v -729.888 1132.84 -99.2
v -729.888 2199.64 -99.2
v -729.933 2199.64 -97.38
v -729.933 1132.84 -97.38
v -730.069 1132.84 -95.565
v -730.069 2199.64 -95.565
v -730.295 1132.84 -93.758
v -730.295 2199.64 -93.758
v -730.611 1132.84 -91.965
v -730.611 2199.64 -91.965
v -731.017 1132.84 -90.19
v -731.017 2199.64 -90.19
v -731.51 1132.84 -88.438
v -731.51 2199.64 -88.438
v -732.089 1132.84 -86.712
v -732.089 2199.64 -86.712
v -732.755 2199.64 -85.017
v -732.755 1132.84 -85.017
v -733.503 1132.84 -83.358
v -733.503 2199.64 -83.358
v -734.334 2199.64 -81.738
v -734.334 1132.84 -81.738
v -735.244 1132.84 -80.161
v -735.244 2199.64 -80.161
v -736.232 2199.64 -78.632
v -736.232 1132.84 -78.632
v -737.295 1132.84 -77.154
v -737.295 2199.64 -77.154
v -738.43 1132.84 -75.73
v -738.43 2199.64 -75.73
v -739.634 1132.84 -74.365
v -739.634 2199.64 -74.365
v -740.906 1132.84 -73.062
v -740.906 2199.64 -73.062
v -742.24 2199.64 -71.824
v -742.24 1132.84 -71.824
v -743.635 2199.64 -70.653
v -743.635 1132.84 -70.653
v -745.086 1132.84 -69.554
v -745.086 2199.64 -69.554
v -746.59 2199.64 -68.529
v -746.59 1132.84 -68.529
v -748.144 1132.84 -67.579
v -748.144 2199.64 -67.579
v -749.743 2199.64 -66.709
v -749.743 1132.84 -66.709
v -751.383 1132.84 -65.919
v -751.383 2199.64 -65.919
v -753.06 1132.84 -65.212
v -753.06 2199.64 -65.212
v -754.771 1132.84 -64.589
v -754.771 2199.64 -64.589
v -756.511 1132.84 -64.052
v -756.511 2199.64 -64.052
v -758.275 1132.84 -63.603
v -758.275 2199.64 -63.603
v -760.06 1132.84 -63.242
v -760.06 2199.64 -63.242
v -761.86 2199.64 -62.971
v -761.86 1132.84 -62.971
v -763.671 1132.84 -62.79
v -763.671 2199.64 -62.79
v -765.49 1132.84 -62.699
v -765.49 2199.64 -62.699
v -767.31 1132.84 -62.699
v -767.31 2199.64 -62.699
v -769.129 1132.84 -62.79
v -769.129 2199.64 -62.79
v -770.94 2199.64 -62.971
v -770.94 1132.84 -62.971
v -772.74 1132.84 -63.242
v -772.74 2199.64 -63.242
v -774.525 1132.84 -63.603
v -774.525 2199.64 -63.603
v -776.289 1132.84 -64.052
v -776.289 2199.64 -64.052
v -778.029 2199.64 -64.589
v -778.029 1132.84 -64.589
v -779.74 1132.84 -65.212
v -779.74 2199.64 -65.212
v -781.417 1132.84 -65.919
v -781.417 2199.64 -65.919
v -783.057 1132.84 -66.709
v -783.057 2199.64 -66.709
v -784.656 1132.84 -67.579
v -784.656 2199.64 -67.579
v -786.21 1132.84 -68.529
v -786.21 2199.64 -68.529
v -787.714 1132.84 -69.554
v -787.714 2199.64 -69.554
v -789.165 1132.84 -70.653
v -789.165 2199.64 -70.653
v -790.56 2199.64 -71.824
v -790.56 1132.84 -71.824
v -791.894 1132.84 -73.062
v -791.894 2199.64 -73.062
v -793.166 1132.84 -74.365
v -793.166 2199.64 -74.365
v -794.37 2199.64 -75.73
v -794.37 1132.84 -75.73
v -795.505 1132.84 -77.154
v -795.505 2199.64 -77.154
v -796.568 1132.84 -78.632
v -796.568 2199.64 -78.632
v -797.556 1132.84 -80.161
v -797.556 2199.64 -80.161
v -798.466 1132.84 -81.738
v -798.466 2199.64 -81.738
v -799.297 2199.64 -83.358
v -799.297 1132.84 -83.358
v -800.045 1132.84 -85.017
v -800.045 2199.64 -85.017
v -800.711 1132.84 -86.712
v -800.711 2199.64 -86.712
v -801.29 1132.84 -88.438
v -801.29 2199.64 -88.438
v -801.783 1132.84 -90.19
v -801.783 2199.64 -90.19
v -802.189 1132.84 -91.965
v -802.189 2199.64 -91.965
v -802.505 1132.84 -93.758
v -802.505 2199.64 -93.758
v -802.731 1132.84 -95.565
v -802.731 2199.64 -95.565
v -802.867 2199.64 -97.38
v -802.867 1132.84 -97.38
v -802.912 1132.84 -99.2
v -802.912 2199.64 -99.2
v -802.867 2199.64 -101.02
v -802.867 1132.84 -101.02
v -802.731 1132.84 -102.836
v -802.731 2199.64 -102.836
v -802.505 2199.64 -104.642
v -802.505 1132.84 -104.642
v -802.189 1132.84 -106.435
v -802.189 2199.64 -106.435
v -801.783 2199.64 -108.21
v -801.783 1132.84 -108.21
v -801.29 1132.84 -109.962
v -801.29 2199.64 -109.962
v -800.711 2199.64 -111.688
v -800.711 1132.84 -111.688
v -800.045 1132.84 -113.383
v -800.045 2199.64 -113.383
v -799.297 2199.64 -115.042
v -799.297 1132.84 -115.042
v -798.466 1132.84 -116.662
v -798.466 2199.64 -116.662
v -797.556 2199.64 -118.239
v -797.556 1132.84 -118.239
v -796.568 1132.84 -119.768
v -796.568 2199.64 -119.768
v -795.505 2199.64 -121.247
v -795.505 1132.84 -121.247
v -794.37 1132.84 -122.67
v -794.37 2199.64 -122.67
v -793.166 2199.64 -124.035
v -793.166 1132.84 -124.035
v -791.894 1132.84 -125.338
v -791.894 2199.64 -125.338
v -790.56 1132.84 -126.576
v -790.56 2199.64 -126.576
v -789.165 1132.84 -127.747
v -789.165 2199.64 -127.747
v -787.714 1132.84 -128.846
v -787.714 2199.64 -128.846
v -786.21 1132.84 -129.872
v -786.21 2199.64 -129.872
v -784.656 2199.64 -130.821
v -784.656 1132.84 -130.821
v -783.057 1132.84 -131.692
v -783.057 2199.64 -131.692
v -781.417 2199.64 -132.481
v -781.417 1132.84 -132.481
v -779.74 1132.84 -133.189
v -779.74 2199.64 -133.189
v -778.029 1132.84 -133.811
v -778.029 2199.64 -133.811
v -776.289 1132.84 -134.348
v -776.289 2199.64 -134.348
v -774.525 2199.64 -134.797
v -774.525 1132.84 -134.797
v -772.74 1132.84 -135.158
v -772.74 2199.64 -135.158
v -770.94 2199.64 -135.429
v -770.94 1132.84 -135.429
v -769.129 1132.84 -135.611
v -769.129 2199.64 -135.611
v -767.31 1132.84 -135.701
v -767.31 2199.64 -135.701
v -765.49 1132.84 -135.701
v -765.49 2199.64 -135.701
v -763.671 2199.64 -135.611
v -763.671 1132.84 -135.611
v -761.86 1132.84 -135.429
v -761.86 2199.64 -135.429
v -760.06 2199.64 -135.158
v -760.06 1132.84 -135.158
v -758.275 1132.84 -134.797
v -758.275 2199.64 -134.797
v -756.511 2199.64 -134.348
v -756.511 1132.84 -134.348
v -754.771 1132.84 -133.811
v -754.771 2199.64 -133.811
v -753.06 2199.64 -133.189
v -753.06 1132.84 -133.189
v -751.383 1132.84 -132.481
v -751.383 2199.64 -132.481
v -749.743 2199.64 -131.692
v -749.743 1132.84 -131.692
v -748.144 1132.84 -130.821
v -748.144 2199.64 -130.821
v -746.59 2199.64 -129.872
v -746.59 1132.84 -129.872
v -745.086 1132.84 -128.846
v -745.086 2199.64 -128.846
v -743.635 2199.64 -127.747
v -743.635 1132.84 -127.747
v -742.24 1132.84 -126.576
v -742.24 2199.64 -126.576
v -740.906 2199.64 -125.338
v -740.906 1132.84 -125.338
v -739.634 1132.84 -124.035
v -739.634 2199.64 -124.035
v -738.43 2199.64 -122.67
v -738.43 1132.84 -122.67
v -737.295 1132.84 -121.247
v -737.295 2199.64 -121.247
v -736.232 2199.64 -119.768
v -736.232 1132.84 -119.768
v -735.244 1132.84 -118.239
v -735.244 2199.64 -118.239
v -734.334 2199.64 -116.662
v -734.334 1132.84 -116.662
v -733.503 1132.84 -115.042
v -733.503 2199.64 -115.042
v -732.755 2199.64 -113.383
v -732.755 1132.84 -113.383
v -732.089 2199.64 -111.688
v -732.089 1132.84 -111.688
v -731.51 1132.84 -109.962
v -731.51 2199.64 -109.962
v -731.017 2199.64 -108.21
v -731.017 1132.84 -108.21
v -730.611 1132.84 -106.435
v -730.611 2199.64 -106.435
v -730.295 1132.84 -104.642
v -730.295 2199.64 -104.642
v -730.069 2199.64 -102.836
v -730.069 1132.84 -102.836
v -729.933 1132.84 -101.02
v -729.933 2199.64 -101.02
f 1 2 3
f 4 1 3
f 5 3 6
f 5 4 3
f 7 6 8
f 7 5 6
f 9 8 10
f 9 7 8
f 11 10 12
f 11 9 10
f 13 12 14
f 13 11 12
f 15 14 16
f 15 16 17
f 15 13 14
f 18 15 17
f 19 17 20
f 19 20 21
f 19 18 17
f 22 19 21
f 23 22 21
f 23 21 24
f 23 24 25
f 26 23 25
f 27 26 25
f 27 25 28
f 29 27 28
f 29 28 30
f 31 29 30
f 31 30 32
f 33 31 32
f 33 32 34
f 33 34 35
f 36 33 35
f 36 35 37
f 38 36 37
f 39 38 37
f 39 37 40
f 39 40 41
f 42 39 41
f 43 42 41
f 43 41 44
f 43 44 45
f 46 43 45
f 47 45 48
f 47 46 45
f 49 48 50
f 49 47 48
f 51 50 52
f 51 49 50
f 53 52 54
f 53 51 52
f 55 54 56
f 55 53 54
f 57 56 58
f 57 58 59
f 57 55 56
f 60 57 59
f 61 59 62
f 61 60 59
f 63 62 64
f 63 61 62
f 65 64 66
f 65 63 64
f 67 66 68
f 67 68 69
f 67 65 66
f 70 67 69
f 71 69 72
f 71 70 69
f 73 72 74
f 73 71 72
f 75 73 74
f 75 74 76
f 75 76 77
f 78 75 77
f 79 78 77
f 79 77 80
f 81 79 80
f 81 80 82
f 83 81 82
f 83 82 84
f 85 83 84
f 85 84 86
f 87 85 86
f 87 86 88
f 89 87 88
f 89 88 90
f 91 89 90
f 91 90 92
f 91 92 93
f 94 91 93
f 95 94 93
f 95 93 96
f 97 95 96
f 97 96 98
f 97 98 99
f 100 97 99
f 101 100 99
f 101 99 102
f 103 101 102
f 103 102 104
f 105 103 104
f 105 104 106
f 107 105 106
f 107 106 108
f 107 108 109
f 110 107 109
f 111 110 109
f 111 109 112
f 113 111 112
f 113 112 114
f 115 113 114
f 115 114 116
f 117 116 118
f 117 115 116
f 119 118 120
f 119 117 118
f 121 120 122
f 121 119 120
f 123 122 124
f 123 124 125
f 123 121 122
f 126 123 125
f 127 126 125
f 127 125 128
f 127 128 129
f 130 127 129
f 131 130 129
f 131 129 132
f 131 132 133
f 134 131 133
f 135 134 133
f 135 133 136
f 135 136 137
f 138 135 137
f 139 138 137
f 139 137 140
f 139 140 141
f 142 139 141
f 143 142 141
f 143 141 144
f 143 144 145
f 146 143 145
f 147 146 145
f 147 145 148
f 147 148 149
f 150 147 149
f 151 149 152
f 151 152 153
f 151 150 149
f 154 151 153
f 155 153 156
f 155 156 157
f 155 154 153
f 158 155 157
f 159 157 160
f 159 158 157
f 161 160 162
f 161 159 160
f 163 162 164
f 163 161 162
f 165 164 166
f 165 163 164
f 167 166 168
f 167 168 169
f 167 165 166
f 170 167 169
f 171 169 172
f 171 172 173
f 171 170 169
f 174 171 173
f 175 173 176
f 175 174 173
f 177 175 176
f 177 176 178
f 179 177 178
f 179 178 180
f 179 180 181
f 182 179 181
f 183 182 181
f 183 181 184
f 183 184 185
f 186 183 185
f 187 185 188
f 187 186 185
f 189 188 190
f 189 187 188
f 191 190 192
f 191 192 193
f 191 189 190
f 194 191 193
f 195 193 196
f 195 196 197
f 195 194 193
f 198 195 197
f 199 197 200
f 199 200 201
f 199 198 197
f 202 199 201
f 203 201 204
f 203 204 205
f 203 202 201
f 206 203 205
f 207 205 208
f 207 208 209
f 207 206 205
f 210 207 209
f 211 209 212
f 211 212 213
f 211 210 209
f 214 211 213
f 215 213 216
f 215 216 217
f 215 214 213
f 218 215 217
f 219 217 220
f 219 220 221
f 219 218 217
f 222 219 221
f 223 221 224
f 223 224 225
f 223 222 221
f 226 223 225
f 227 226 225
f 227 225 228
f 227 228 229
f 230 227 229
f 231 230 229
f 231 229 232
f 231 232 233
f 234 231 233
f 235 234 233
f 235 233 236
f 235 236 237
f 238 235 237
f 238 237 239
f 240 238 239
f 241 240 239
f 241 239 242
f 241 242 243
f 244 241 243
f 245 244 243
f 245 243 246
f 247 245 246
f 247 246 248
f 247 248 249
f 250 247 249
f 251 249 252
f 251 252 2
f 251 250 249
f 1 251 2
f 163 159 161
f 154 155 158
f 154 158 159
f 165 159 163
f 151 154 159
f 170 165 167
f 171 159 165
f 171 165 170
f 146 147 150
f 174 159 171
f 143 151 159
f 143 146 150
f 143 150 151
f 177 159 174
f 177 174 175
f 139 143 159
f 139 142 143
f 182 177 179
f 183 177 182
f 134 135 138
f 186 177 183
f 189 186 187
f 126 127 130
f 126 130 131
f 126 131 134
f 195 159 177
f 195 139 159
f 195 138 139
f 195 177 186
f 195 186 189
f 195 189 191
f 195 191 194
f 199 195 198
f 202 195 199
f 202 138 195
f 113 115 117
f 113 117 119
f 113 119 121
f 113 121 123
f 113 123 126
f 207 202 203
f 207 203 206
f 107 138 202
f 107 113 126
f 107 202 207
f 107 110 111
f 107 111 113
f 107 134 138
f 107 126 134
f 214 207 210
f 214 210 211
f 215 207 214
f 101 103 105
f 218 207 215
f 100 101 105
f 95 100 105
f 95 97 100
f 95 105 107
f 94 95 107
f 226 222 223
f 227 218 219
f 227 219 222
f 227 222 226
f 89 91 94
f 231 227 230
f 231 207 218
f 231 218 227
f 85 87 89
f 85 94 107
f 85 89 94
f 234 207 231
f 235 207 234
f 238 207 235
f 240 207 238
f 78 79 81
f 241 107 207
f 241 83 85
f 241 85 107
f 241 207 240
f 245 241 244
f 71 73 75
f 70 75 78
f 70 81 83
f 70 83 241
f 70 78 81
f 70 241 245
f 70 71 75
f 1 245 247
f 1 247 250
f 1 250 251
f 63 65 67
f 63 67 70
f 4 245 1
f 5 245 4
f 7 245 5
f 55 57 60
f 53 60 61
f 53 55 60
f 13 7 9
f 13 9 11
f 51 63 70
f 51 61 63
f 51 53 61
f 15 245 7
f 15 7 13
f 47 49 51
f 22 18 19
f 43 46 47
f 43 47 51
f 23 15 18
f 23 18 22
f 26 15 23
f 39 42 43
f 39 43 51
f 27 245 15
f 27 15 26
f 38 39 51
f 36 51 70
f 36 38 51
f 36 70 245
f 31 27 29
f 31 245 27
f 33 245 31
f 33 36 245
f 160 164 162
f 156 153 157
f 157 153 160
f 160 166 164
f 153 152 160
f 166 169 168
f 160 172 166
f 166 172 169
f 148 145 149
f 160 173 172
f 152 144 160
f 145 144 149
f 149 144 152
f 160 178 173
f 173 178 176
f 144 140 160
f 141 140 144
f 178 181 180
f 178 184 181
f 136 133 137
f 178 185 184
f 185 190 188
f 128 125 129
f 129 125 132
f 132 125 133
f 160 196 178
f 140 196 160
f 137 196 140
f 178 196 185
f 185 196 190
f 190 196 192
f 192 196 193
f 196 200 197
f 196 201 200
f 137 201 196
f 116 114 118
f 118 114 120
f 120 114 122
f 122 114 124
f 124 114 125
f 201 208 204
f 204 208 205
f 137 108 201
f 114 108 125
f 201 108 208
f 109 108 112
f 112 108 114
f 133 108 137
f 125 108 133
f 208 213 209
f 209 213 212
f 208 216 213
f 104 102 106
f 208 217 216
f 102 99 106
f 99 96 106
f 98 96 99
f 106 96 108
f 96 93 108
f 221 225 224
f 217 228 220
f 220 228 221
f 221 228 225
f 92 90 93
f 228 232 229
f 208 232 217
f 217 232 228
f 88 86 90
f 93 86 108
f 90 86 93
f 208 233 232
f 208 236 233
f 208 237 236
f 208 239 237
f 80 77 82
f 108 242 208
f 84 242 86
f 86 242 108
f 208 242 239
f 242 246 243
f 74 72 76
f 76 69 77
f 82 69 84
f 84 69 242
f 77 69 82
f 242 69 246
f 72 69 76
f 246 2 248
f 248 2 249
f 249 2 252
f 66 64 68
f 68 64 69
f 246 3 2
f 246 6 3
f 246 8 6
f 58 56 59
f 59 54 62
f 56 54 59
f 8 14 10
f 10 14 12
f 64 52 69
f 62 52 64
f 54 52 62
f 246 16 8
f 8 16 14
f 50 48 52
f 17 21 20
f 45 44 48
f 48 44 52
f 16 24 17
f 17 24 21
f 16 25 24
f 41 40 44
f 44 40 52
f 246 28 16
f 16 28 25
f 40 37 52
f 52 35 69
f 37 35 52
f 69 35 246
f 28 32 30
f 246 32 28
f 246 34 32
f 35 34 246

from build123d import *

# Parameters (mm, degrees)
CYLINDER009_R          = 36.5125
CYLINDER009_DEPTH      = 1066.8
CYLINDER009_ROLL_ANGLE = 90


with BuildPart() as part:
    # Cylinder009 → Cylinder009 (new body)
    with BuildSketch(Plane.XY):
        Circle(CYLINDER009_R)
    extrude(amount=CYLINDER009_DEPTH)


with BuildPart() as part_1:
    # Cylinder009 roll: moved
    add(part.part.rotate(Axis((0, 0, 0), (1, 0, 0)), CYLINDER009_ROLL_ANGLE))


with BuildPart() as part_2:
    # Cylinder009 placement: moved
    add(part_1.part.moved(Location((-766.4, 2199.64, -99.2001))))


solid = part_2.part
